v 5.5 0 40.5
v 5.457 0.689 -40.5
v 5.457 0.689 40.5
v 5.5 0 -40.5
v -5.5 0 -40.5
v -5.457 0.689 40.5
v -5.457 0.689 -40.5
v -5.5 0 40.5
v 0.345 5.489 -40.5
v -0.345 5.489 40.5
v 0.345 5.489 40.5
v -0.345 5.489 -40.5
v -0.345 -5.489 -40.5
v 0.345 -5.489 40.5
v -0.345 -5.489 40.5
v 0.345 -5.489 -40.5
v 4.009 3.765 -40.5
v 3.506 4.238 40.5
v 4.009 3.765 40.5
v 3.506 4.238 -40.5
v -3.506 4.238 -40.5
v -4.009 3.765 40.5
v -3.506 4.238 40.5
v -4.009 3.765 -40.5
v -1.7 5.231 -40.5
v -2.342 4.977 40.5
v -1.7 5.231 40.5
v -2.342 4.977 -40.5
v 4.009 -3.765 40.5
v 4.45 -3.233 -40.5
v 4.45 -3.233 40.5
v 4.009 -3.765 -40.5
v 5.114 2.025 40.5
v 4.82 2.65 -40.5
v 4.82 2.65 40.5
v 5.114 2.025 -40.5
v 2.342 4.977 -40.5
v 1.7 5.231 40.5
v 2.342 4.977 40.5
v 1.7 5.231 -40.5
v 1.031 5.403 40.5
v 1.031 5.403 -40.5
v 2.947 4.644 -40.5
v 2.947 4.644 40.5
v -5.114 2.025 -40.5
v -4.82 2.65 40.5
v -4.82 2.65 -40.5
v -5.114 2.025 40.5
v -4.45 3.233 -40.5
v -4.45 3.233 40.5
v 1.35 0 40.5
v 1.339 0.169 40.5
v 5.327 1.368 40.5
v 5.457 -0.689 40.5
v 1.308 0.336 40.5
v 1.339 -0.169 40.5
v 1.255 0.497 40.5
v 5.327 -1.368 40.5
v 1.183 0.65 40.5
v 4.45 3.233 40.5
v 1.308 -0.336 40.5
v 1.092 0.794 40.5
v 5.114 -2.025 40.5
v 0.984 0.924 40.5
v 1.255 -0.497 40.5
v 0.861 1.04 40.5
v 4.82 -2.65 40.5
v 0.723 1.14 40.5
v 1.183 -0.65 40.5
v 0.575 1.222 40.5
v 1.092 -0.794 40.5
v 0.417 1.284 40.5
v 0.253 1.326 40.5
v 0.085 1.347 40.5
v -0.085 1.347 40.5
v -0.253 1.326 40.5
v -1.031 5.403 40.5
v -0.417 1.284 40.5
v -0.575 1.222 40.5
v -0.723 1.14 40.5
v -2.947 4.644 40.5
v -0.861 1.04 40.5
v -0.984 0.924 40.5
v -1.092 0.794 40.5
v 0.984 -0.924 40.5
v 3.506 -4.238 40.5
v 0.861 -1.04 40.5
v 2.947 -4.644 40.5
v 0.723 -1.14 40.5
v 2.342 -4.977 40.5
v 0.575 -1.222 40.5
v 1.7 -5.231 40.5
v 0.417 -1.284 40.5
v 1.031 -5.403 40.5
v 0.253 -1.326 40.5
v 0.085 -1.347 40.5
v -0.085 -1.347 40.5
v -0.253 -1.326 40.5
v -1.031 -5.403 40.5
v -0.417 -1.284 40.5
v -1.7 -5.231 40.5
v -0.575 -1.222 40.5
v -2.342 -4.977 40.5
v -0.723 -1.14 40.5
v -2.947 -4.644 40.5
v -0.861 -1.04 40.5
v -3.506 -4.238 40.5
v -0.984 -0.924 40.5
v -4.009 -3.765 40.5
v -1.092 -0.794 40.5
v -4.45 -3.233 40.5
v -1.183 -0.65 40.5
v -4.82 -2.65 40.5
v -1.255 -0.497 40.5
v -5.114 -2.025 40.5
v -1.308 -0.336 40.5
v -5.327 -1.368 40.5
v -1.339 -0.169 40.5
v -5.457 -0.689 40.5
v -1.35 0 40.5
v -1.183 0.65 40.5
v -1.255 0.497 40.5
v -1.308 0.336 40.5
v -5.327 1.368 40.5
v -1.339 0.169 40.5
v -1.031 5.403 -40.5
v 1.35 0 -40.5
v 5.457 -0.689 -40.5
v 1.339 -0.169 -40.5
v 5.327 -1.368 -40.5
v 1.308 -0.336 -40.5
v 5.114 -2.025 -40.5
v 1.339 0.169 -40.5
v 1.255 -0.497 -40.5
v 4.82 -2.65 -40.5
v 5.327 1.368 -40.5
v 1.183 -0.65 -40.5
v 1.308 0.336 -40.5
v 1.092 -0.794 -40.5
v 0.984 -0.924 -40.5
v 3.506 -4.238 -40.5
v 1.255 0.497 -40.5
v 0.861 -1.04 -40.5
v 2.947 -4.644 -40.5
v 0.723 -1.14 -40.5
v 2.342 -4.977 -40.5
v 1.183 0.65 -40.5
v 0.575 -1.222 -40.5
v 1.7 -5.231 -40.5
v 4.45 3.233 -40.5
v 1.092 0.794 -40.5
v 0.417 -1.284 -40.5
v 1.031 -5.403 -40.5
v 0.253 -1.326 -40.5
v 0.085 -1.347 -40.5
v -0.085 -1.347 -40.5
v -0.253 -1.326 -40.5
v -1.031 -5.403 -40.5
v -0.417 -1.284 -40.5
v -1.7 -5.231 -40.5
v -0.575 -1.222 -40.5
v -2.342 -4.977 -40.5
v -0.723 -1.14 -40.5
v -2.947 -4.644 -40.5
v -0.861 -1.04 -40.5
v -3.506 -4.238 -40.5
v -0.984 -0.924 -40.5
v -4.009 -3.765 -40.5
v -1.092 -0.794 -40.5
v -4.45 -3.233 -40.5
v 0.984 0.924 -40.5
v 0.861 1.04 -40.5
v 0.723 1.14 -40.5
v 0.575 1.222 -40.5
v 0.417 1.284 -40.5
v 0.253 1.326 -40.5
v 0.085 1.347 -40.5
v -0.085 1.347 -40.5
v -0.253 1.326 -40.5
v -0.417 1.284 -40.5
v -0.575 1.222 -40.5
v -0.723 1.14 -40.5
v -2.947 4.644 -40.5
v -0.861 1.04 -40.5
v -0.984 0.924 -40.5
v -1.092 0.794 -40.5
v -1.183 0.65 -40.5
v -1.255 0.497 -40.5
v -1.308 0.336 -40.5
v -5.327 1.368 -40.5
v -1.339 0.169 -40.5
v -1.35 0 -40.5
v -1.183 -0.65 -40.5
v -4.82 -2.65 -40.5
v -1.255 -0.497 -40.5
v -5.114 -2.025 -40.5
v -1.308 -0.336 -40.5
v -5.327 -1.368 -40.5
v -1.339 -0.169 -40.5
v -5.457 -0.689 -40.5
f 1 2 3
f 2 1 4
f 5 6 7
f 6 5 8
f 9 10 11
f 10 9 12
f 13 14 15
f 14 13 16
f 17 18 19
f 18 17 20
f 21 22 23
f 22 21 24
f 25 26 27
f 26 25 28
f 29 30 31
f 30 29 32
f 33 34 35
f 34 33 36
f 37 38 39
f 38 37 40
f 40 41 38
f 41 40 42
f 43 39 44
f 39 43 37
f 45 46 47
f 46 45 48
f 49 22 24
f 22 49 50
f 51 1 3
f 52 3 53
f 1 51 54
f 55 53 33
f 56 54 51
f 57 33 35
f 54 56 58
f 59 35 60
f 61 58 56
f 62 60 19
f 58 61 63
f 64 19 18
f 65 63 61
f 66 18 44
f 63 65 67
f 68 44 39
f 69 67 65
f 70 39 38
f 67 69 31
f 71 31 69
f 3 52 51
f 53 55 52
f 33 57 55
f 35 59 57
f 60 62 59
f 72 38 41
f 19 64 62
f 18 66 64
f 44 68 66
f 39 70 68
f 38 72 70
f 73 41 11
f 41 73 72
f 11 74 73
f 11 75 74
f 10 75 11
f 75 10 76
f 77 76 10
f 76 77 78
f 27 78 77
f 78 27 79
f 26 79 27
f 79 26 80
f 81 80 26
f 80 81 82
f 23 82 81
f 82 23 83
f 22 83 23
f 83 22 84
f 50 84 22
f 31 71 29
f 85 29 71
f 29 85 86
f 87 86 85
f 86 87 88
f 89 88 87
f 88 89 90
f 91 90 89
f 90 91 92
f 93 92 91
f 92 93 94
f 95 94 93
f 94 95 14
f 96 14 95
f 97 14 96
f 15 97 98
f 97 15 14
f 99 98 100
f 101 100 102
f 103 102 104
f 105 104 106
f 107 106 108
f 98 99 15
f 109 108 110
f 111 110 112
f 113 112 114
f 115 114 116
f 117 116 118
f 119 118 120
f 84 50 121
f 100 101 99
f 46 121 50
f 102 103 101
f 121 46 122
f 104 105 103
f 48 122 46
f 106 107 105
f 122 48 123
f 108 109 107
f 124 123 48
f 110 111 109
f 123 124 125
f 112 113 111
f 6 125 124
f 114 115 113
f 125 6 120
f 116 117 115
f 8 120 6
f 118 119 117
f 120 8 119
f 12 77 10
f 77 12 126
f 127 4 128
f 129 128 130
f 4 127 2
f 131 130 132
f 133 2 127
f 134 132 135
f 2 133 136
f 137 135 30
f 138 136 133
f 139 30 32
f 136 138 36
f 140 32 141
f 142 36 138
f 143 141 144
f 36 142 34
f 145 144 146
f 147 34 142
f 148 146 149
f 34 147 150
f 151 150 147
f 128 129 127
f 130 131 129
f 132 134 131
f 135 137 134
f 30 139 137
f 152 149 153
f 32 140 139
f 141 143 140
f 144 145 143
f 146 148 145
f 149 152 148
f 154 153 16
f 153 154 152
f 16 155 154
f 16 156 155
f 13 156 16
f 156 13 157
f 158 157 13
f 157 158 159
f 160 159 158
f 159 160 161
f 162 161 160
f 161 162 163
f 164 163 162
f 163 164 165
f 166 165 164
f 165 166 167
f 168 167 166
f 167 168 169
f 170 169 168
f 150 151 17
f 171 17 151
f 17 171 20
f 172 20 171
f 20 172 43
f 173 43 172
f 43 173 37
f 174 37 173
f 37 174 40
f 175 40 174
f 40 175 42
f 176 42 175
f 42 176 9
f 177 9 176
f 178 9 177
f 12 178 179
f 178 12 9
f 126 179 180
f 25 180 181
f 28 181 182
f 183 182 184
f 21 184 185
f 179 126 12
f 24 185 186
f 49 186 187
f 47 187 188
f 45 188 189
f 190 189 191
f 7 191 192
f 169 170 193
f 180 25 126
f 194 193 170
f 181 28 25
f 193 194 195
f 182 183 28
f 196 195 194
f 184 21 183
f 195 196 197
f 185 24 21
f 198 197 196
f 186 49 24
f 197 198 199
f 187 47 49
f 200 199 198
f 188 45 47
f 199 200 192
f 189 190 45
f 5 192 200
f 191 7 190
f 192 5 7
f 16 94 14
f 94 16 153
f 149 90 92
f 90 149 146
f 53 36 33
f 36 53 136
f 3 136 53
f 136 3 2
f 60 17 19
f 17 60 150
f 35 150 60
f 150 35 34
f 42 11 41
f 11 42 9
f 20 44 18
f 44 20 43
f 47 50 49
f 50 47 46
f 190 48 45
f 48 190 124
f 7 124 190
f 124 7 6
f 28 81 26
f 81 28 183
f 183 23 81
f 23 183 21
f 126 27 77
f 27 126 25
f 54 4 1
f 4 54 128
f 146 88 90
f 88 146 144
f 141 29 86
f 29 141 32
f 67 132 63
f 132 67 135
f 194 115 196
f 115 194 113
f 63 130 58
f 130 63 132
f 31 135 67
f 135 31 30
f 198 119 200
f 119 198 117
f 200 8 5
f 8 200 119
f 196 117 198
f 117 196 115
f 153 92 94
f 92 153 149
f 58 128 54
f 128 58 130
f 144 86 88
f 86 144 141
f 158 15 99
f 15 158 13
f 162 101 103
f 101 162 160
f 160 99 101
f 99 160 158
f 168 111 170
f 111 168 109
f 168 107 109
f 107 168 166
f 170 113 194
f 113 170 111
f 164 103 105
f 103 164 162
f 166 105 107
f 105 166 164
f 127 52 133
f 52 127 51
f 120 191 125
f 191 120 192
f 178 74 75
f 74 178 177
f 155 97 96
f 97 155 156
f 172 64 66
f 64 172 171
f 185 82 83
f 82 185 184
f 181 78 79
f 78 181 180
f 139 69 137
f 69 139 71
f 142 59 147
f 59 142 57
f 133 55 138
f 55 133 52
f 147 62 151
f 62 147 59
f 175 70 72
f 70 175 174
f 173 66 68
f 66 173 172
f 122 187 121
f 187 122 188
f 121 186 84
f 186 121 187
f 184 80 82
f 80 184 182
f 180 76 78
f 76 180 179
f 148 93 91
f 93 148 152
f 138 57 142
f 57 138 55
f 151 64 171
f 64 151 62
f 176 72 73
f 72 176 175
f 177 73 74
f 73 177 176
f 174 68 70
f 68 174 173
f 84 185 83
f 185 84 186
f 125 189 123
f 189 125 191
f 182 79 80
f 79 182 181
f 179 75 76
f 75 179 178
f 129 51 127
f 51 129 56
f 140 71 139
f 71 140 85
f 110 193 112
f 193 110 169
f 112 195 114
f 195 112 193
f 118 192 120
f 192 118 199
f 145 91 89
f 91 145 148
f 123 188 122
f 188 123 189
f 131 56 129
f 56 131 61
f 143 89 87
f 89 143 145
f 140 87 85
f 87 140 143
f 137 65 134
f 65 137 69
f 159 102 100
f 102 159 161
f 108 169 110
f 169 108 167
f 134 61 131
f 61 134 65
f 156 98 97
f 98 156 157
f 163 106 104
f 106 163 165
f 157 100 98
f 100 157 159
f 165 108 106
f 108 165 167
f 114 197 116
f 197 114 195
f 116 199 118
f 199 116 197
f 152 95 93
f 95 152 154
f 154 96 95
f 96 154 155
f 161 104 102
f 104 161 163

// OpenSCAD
$fn = 50;


difference() {
	union() {
		translate(v = [0, 0, -40.5000000000]) {
			cylinder(h = 81, r = 5.5000000000);
		}
	}
	union() {
		translate(v = [0, 0, -100.0000000000]) {
			cylinder(h = 200, r = 1.3500000000);
		}
	}
}
